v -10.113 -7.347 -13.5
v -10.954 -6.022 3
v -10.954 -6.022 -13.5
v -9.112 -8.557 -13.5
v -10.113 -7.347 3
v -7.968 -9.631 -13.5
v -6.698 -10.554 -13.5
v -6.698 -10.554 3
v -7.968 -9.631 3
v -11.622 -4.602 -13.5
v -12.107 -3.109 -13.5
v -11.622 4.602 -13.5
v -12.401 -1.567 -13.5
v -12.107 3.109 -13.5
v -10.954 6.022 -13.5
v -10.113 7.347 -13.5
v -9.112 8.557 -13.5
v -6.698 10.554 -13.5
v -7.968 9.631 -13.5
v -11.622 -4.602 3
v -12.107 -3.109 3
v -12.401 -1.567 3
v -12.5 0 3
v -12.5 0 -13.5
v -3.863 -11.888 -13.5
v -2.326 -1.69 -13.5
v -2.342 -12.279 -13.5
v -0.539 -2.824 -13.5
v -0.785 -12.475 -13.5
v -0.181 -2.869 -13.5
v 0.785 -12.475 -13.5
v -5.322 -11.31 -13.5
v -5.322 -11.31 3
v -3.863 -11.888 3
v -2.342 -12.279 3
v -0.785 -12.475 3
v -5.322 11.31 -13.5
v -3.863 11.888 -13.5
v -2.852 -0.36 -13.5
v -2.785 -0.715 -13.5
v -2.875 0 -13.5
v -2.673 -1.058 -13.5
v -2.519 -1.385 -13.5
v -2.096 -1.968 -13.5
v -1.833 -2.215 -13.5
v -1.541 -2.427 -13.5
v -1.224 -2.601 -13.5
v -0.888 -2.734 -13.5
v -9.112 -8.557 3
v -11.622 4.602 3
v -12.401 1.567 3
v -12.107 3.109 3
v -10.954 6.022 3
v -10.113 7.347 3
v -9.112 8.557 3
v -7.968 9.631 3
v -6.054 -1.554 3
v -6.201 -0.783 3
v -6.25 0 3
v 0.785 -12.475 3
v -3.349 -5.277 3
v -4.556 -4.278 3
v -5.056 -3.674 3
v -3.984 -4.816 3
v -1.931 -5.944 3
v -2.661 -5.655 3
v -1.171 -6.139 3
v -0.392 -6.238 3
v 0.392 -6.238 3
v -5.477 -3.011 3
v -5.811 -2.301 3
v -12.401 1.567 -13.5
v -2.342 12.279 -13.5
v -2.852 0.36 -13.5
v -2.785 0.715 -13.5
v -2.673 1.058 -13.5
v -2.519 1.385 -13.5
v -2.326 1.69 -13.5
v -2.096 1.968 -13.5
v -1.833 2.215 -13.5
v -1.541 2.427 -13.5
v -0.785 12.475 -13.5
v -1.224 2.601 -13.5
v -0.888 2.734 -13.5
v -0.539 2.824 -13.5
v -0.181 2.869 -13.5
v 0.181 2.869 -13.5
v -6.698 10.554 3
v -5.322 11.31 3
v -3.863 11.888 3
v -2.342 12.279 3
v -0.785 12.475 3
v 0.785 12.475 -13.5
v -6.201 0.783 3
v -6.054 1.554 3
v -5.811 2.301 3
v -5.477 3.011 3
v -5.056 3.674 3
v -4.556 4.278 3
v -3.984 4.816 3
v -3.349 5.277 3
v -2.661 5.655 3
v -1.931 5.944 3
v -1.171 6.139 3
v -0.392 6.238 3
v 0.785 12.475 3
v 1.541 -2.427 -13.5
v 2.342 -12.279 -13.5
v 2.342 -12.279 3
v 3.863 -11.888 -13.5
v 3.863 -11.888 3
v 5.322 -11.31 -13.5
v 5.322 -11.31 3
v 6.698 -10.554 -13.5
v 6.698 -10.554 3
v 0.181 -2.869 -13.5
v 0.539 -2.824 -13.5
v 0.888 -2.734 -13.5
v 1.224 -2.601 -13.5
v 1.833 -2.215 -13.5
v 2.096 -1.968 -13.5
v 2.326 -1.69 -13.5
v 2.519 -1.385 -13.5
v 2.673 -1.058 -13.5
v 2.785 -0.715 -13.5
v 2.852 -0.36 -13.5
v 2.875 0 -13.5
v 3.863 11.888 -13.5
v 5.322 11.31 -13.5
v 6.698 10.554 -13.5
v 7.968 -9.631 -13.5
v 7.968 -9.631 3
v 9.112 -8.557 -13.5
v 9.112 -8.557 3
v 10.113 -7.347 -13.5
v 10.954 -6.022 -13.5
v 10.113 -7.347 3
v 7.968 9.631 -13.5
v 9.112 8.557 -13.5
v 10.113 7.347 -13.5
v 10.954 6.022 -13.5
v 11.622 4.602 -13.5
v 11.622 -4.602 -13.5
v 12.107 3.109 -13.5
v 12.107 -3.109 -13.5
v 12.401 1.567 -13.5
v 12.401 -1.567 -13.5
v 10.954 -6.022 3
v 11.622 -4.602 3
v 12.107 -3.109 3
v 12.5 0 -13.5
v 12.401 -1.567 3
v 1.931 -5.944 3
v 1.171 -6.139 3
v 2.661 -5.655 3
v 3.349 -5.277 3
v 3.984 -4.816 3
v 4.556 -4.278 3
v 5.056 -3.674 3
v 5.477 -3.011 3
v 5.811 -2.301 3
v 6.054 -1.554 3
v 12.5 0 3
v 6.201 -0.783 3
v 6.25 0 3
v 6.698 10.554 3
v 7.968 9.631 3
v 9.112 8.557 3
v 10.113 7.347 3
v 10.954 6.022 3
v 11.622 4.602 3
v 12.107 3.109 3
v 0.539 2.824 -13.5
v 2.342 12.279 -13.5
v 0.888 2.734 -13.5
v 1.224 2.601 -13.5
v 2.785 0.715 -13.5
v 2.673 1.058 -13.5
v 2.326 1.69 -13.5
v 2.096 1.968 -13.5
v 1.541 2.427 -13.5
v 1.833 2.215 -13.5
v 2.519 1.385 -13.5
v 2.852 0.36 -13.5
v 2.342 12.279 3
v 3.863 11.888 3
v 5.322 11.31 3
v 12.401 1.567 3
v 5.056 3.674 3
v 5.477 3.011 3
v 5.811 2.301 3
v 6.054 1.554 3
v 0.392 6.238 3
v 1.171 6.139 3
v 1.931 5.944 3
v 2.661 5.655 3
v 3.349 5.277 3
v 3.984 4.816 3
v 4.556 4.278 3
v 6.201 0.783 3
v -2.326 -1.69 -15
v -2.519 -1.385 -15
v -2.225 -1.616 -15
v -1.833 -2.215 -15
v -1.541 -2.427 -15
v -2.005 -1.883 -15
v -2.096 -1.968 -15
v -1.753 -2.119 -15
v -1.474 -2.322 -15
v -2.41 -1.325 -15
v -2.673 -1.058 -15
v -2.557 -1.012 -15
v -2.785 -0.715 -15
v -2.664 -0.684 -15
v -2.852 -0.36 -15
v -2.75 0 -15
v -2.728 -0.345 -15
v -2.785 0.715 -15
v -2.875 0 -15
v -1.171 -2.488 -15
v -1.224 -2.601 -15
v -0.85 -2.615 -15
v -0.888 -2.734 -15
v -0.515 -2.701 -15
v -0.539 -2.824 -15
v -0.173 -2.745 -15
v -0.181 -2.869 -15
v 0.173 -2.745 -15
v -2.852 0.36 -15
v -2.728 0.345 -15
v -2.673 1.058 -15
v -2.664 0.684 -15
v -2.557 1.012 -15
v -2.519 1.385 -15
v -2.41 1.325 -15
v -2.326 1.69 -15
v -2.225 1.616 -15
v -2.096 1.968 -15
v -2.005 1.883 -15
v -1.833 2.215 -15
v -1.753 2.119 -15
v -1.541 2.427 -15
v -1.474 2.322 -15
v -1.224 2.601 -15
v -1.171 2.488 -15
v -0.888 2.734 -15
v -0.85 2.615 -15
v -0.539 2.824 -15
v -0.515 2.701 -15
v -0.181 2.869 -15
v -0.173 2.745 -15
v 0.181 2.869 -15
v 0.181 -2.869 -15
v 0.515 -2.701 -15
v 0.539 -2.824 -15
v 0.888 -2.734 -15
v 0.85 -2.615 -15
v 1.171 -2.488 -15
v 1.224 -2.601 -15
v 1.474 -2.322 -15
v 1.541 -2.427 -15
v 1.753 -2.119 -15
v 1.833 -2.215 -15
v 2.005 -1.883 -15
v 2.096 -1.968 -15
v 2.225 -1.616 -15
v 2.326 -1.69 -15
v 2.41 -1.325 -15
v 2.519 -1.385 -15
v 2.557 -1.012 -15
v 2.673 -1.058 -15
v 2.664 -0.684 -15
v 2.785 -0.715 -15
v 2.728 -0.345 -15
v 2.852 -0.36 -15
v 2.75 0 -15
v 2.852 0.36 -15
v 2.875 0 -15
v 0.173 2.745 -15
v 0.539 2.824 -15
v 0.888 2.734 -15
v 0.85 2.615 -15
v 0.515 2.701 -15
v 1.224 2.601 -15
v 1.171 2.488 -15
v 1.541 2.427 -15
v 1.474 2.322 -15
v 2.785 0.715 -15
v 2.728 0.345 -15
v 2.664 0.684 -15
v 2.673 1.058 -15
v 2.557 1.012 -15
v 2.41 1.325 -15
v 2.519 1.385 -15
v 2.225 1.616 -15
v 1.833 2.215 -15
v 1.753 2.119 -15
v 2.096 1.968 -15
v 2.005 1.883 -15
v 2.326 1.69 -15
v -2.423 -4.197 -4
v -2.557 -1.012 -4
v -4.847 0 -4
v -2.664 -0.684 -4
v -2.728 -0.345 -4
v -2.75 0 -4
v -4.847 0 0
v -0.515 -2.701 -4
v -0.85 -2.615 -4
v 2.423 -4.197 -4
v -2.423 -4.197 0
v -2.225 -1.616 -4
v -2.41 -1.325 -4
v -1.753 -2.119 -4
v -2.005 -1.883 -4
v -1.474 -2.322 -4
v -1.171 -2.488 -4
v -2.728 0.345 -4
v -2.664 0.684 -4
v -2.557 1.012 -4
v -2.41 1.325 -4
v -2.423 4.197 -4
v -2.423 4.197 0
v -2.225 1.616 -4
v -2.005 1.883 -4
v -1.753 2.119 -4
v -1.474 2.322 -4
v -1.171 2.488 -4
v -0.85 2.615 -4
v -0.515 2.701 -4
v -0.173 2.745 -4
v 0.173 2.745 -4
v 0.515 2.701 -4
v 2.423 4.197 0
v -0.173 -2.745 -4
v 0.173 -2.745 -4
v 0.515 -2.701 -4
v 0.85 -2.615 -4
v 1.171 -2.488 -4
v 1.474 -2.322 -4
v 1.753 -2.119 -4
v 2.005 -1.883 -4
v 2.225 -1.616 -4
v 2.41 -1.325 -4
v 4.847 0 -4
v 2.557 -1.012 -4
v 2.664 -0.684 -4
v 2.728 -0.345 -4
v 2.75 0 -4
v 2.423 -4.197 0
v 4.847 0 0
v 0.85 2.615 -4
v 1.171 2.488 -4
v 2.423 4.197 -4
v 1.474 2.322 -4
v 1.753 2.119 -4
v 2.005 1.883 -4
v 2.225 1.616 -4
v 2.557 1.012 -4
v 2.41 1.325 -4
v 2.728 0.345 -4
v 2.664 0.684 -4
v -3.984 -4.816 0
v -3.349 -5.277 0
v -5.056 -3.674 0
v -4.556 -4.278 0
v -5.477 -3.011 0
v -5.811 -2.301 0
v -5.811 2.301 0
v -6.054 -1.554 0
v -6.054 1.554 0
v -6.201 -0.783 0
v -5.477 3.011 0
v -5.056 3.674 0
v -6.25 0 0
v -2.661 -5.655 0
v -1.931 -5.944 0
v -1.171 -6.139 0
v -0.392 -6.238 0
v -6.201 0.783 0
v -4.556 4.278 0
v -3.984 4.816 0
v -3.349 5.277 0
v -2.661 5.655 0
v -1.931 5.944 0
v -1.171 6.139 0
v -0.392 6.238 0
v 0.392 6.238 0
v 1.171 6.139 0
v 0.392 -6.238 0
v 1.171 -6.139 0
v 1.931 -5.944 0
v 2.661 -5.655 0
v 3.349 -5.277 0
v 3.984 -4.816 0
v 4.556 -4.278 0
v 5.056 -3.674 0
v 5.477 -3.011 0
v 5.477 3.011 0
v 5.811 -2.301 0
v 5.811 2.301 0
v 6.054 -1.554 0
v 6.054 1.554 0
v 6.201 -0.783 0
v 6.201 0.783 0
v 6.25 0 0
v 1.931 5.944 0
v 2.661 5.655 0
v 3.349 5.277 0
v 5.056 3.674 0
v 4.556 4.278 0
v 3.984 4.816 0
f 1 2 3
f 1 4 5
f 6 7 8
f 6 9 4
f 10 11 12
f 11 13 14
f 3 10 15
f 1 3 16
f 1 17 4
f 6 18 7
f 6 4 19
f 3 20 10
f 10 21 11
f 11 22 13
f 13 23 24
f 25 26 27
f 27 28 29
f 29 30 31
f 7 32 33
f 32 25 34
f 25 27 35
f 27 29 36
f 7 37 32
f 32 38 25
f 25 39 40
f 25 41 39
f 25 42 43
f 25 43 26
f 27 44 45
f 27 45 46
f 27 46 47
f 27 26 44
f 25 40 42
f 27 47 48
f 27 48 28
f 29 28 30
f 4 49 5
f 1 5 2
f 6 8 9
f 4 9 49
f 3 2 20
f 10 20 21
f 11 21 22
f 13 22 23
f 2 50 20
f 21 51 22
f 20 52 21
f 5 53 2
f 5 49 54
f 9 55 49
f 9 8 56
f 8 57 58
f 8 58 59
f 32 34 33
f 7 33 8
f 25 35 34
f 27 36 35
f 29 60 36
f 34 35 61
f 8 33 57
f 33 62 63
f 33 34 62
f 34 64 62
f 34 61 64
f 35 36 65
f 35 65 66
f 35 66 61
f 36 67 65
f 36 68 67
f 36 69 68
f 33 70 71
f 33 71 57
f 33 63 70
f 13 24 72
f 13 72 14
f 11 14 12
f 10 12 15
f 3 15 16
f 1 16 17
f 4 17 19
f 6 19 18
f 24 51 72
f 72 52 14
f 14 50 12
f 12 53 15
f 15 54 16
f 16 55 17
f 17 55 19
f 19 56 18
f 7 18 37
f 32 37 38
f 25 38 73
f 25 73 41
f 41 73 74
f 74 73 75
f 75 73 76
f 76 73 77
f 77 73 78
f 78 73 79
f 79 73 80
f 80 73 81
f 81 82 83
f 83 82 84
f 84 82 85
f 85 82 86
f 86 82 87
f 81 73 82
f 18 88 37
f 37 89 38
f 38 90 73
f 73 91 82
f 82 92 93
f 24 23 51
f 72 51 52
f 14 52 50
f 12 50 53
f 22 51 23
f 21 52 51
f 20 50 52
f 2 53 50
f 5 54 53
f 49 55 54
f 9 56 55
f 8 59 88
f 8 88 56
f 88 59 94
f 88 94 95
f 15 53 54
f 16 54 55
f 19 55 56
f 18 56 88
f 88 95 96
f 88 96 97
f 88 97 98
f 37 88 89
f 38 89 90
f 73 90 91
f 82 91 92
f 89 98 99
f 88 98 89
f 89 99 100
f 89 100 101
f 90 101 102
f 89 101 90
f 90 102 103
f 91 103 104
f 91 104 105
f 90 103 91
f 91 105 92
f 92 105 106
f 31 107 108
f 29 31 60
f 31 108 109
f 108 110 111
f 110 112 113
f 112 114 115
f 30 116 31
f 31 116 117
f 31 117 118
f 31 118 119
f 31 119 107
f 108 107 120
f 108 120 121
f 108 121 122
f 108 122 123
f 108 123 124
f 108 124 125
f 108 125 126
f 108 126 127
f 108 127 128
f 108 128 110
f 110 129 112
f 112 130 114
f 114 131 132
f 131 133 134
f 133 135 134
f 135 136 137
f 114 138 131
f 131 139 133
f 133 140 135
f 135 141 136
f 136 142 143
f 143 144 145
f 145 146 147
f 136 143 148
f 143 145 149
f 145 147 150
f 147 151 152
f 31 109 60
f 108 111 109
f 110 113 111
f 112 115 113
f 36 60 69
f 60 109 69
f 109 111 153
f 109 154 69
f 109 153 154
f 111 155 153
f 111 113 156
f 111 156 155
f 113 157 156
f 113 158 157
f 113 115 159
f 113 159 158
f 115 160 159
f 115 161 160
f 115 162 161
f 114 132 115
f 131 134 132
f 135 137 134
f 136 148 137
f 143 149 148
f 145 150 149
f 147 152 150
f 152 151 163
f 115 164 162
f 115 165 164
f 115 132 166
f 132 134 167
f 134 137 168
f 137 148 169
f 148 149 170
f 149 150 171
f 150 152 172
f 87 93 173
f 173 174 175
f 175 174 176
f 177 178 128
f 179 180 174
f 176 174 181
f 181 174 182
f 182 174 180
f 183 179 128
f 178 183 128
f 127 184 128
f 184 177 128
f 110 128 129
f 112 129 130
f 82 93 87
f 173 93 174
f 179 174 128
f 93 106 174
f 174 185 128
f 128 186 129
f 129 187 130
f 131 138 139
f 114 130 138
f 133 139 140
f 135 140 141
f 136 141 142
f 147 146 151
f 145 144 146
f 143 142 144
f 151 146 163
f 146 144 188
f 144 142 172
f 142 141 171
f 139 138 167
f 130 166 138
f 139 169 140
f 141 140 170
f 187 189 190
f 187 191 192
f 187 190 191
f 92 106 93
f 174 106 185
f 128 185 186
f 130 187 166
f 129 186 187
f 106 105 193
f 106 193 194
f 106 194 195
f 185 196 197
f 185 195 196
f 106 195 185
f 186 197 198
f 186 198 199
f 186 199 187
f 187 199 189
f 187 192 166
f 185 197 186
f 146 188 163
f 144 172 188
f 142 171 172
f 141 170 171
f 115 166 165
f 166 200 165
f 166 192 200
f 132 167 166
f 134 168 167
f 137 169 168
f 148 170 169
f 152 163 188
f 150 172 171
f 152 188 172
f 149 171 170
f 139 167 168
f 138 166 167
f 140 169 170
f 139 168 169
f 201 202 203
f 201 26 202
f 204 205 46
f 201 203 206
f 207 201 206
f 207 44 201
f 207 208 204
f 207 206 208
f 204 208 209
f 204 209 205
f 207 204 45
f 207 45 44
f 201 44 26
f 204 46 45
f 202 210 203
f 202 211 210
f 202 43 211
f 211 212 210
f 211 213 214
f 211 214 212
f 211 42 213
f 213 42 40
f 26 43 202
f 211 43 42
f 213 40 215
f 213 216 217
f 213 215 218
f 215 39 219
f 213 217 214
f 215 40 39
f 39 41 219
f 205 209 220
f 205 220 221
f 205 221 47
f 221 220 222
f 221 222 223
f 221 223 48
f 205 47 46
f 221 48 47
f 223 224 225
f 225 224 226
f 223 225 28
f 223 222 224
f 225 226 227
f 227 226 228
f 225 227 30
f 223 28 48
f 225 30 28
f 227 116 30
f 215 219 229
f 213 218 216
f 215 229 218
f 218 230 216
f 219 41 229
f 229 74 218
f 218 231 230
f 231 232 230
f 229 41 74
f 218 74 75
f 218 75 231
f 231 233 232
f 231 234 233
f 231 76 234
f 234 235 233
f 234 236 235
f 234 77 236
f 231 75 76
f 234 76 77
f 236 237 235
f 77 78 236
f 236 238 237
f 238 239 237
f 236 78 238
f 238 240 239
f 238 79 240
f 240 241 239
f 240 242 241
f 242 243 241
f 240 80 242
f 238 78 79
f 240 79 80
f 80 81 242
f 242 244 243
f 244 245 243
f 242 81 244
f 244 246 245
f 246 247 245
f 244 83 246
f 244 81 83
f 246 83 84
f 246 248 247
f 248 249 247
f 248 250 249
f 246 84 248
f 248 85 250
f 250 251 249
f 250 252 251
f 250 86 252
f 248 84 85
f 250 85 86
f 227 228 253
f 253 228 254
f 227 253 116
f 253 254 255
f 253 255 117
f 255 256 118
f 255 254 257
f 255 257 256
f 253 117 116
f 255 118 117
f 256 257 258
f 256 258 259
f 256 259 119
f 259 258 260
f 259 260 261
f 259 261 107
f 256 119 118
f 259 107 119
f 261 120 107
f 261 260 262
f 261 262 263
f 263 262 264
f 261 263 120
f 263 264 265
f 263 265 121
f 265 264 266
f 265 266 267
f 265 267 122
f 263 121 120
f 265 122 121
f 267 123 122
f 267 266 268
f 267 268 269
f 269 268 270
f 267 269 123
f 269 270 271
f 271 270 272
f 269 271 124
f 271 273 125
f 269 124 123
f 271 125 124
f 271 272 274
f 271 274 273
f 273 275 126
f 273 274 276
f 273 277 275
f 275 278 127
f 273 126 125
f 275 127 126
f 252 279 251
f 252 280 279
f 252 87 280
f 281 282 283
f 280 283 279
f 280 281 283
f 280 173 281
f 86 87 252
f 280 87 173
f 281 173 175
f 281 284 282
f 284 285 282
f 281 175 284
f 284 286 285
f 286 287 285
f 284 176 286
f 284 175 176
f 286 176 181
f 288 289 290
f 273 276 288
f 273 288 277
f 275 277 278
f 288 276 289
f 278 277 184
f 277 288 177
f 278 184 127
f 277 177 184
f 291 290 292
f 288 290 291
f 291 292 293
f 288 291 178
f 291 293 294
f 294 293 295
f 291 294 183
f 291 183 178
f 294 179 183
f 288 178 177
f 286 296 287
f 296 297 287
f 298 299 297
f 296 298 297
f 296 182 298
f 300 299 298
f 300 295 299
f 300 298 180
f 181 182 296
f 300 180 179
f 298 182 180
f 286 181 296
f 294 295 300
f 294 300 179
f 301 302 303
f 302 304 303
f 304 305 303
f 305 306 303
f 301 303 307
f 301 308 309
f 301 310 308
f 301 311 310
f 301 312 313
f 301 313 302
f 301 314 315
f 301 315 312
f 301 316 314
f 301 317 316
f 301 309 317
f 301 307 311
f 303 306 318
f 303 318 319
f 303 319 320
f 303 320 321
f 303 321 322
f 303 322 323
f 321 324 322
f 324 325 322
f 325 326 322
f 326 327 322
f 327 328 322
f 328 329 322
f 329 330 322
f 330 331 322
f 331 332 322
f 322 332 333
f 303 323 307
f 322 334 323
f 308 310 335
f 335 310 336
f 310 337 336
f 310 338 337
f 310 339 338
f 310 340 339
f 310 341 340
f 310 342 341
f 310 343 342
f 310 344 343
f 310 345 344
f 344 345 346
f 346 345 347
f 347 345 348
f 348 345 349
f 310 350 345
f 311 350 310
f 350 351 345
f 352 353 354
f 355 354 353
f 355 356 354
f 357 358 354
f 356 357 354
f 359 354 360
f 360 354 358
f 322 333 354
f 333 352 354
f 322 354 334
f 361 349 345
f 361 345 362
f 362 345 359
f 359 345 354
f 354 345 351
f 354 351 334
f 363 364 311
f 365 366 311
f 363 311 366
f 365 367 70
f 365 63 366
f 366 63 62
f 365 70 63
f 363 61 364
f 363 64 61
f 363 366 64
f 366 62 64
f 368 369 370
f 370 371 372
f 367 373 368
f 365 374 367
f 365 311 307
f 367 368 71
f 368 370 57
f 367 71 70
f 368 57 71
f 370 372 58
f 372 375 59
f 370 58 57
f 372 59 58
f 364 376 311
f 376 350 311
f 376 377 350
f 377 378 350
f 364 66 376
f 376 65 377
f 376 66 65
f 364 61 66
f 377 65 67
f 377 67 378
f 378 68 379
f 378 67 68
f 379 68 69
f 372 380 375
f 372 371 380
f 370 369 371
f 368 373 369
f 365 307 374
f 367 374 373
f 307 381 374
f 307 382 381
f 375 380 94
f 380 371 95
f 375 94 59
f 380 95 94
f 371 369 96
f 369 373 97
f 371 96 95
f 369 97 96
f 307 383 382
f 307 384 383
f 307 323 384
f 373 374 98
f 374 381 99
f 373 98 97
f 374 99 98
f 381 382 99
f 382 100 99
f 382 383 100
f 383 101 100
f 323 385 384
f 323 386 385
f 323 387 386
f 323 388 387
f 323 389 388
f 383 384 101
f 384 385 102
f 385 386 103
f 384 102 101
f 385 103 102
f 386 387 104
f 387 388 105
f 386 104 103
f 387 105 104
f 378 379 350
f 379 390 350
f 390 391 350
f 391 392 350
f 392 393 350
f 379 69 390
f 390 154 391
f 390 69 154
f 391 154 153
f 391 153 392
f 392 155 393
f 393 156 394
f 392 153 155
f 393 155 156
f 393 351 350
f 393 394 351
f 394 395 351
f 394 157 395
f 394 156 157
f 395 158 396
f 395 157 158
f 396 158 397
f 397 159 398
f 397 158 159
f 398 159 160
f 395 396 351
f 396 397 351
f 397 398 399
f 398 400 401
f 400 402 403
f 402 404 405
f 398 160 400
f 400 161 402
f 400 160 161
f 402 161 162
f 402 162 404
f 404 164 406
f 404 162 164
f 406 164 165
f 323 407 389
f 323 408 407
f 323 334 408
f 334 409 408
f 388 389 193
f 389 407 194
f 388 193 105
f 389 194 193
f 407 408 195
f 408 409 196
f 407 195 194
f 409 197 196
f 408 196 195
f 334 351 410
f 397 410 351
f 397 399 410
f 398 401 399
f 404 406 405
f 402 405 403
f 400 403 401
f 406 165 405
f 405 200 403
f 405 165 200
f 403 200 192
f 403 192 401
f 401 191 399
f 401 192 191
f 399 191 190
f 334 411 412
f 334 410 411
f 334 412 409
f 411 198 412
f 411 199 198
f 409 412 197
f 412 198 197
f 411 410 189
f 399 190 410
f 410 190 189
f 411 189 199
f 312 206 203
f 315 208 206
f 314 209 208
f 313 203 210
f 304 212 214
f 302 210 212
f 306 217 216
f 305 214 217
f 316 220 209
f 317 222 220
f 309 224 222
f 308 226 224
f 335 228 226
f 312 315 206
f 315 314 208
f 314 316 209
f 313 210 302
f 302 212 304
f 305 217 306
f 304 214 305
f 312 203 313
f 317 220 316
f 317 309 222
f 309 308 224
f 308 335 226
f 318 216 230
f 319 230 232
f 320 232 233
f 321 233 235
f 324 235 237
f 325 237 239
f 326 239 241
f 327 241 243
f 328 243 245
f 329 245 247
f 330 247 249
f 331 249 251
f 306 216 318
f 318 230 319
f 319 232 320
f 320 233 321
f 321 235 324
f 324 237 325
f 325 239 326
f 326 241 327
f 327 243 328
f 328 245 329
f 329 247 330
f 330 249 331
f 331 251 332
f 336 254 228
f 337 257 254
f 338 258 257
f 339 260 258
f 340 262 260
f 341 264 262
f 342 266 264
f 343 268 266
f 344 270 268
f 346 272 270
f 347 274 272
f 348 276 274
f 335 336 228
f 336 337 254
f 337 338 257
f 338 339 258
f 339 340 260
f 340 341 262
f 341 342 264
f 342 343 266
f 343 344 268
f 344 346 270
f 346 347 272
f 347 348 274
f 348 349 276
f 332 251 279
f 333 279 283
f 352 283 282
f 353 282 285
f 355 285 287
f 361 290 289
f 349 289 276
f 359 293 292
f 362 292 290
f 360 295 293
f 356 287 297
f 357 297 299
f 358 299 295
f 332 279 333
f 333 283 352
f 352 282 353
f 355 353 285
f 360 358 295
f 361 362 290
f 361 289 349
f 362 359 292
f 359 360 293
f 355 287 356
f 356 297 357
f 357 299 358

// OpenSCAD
$fn = 50;

difference() {
	union() {
		translate(v = [0, 0, -13.5]) {
			cylinder(h = 16.5, r = 12.5);
		}
		#translate(v = [0, 0, -15.0]) {
			cylinder(h = 15, r = 2.875);
		}
	}
	union() {
		translate(v = [0, 0, 0]) {
			rotate(a = [0, 0, 0]) {
				difference() {
					union() {
						translate(v = [0, 0, -4]) {
							linear_extrude(height = 4) {
								polygon(points = [[4.8468, 0.0], [2.4234000000000004, 4.197451927062417], [-2.423399999999999, 4.197451927062417], [-4.8468, 5.935618106107392e-16], [-2.423400000000002, -4.197451927062416], [2.423399999999997, -4.197451927062419]]);
							}
						}
					}
					union();
				}
			}
		}
		#cylinder(h = 3, r = 6.25);
		#translate(v = [0, 0, -100.0]) {
			cylinder(h = 200, r = 2.75);
		}
	}
}
